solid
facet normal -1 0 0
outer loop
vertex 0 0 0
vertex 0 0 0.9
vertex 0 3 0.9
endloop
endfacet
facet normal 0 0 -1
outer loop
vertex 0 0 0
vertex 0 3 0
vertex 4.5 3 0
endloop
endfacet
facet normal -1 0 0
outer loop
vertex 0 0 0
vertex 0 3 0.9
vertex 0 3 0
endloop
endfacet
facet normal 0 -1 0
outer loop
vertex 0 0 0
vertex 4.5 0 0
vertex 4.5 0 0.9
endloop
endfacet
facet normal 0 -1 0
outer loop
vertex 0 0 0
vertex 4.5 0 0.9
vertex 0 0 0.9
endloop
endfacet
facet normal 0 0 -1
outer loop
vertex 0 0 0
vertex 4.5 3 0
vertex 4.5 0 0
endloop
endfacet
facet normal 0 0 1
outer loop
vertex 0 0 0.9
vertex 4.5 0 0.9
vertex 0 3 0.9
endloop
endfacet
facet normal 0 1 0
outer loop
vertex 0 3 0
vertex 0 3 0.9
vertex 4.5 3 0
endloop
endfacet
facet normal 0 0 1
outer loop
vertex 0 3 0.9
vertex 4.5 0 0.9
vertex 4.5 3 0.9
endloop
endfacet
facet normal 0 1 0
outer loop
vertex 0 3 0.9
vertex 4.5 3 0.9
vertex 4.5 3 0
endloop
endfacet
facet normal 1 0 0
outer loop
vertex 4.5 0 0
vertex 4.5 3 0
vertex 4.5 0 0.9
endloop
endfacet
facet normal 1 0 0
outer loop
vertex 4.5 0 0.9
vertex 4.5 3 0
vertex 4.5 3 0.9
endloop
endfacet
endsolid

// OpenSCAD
/* Warning, this is a very basic generator with a lot of approximation 
input data : [VDFN, QQB, 4.5x3x0.9mm, 18, , B, C04-21458B]
generated by com.zoubworld.electronics.cad.model3d.Basic
Date : Sun Feb 15 10:50:49 CET 2026
*/

//body
color("black")
translate([0,0,0])
cube([4.5,3.0,0.9], center=false);
